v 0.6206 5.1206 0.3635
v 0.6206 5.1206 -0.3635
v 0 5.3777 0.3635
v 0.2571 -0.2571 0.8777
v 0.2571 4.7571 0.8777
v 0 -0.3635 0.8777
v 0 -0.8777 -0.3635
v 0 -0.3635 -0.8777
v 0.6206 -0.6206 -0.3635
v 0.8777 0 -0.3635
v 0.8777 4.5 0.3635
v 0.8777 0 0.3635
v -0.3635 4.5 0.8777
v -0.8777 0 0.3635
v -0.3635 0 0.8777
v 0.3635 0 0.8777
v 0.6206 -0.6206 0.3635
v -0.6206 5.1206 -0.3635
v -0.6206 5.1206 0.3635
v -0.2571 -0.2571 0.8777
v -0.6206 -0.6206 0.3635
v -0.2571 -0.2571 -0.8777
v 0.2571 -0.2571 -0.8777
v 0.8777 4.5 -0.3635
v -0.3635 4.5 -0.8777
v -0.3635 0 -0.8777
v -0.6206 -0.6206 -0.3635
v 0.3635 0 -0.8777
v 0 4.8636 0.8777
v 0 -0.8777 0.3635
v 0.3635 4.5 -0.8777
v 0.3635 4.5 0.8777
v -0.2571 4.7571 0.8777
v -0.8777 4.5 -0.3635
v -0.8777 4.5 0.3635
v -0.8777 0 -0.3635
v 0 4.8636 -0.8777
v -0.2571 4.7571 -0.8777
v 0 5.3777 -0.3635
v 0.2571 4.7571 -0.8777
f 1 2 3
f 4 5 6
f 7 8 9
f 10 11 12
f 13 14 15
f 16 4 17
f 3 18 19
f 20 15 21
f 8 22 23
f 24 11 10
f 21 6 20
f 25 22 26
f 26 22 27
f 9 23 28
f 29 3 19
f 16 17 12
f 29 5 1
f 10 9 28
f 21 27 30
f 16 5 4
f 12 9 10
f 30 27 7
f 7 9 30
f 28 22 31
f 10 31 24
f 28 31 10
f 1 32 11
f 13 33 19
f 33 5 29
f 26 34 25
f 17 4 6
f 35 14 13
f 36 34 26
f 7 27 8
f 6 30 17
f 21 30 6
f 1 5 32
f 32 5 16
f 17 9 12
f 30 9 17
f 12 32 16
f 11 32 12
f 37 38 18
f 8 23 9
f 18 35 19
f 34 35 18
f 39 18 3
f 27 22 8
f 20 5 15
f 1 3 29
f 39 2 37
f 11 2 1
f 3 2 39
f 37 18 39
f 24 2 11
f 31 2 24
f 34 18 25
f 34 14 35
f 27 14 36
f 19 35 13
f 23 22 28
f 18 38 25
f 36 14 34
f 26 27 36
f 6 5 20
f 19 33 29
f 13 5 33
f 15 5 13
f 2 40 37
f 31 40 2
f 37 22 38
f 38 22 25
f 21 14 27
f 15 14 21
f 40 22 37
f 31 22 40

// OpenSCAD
module rod(a, b, r) {
        hull() {
            translate(a) sphere(r,$fn=8);
            translate(b) sphere(r,$fn=8);
        }
    }

rod([0,0,0],[0,4.5,0],.95);
